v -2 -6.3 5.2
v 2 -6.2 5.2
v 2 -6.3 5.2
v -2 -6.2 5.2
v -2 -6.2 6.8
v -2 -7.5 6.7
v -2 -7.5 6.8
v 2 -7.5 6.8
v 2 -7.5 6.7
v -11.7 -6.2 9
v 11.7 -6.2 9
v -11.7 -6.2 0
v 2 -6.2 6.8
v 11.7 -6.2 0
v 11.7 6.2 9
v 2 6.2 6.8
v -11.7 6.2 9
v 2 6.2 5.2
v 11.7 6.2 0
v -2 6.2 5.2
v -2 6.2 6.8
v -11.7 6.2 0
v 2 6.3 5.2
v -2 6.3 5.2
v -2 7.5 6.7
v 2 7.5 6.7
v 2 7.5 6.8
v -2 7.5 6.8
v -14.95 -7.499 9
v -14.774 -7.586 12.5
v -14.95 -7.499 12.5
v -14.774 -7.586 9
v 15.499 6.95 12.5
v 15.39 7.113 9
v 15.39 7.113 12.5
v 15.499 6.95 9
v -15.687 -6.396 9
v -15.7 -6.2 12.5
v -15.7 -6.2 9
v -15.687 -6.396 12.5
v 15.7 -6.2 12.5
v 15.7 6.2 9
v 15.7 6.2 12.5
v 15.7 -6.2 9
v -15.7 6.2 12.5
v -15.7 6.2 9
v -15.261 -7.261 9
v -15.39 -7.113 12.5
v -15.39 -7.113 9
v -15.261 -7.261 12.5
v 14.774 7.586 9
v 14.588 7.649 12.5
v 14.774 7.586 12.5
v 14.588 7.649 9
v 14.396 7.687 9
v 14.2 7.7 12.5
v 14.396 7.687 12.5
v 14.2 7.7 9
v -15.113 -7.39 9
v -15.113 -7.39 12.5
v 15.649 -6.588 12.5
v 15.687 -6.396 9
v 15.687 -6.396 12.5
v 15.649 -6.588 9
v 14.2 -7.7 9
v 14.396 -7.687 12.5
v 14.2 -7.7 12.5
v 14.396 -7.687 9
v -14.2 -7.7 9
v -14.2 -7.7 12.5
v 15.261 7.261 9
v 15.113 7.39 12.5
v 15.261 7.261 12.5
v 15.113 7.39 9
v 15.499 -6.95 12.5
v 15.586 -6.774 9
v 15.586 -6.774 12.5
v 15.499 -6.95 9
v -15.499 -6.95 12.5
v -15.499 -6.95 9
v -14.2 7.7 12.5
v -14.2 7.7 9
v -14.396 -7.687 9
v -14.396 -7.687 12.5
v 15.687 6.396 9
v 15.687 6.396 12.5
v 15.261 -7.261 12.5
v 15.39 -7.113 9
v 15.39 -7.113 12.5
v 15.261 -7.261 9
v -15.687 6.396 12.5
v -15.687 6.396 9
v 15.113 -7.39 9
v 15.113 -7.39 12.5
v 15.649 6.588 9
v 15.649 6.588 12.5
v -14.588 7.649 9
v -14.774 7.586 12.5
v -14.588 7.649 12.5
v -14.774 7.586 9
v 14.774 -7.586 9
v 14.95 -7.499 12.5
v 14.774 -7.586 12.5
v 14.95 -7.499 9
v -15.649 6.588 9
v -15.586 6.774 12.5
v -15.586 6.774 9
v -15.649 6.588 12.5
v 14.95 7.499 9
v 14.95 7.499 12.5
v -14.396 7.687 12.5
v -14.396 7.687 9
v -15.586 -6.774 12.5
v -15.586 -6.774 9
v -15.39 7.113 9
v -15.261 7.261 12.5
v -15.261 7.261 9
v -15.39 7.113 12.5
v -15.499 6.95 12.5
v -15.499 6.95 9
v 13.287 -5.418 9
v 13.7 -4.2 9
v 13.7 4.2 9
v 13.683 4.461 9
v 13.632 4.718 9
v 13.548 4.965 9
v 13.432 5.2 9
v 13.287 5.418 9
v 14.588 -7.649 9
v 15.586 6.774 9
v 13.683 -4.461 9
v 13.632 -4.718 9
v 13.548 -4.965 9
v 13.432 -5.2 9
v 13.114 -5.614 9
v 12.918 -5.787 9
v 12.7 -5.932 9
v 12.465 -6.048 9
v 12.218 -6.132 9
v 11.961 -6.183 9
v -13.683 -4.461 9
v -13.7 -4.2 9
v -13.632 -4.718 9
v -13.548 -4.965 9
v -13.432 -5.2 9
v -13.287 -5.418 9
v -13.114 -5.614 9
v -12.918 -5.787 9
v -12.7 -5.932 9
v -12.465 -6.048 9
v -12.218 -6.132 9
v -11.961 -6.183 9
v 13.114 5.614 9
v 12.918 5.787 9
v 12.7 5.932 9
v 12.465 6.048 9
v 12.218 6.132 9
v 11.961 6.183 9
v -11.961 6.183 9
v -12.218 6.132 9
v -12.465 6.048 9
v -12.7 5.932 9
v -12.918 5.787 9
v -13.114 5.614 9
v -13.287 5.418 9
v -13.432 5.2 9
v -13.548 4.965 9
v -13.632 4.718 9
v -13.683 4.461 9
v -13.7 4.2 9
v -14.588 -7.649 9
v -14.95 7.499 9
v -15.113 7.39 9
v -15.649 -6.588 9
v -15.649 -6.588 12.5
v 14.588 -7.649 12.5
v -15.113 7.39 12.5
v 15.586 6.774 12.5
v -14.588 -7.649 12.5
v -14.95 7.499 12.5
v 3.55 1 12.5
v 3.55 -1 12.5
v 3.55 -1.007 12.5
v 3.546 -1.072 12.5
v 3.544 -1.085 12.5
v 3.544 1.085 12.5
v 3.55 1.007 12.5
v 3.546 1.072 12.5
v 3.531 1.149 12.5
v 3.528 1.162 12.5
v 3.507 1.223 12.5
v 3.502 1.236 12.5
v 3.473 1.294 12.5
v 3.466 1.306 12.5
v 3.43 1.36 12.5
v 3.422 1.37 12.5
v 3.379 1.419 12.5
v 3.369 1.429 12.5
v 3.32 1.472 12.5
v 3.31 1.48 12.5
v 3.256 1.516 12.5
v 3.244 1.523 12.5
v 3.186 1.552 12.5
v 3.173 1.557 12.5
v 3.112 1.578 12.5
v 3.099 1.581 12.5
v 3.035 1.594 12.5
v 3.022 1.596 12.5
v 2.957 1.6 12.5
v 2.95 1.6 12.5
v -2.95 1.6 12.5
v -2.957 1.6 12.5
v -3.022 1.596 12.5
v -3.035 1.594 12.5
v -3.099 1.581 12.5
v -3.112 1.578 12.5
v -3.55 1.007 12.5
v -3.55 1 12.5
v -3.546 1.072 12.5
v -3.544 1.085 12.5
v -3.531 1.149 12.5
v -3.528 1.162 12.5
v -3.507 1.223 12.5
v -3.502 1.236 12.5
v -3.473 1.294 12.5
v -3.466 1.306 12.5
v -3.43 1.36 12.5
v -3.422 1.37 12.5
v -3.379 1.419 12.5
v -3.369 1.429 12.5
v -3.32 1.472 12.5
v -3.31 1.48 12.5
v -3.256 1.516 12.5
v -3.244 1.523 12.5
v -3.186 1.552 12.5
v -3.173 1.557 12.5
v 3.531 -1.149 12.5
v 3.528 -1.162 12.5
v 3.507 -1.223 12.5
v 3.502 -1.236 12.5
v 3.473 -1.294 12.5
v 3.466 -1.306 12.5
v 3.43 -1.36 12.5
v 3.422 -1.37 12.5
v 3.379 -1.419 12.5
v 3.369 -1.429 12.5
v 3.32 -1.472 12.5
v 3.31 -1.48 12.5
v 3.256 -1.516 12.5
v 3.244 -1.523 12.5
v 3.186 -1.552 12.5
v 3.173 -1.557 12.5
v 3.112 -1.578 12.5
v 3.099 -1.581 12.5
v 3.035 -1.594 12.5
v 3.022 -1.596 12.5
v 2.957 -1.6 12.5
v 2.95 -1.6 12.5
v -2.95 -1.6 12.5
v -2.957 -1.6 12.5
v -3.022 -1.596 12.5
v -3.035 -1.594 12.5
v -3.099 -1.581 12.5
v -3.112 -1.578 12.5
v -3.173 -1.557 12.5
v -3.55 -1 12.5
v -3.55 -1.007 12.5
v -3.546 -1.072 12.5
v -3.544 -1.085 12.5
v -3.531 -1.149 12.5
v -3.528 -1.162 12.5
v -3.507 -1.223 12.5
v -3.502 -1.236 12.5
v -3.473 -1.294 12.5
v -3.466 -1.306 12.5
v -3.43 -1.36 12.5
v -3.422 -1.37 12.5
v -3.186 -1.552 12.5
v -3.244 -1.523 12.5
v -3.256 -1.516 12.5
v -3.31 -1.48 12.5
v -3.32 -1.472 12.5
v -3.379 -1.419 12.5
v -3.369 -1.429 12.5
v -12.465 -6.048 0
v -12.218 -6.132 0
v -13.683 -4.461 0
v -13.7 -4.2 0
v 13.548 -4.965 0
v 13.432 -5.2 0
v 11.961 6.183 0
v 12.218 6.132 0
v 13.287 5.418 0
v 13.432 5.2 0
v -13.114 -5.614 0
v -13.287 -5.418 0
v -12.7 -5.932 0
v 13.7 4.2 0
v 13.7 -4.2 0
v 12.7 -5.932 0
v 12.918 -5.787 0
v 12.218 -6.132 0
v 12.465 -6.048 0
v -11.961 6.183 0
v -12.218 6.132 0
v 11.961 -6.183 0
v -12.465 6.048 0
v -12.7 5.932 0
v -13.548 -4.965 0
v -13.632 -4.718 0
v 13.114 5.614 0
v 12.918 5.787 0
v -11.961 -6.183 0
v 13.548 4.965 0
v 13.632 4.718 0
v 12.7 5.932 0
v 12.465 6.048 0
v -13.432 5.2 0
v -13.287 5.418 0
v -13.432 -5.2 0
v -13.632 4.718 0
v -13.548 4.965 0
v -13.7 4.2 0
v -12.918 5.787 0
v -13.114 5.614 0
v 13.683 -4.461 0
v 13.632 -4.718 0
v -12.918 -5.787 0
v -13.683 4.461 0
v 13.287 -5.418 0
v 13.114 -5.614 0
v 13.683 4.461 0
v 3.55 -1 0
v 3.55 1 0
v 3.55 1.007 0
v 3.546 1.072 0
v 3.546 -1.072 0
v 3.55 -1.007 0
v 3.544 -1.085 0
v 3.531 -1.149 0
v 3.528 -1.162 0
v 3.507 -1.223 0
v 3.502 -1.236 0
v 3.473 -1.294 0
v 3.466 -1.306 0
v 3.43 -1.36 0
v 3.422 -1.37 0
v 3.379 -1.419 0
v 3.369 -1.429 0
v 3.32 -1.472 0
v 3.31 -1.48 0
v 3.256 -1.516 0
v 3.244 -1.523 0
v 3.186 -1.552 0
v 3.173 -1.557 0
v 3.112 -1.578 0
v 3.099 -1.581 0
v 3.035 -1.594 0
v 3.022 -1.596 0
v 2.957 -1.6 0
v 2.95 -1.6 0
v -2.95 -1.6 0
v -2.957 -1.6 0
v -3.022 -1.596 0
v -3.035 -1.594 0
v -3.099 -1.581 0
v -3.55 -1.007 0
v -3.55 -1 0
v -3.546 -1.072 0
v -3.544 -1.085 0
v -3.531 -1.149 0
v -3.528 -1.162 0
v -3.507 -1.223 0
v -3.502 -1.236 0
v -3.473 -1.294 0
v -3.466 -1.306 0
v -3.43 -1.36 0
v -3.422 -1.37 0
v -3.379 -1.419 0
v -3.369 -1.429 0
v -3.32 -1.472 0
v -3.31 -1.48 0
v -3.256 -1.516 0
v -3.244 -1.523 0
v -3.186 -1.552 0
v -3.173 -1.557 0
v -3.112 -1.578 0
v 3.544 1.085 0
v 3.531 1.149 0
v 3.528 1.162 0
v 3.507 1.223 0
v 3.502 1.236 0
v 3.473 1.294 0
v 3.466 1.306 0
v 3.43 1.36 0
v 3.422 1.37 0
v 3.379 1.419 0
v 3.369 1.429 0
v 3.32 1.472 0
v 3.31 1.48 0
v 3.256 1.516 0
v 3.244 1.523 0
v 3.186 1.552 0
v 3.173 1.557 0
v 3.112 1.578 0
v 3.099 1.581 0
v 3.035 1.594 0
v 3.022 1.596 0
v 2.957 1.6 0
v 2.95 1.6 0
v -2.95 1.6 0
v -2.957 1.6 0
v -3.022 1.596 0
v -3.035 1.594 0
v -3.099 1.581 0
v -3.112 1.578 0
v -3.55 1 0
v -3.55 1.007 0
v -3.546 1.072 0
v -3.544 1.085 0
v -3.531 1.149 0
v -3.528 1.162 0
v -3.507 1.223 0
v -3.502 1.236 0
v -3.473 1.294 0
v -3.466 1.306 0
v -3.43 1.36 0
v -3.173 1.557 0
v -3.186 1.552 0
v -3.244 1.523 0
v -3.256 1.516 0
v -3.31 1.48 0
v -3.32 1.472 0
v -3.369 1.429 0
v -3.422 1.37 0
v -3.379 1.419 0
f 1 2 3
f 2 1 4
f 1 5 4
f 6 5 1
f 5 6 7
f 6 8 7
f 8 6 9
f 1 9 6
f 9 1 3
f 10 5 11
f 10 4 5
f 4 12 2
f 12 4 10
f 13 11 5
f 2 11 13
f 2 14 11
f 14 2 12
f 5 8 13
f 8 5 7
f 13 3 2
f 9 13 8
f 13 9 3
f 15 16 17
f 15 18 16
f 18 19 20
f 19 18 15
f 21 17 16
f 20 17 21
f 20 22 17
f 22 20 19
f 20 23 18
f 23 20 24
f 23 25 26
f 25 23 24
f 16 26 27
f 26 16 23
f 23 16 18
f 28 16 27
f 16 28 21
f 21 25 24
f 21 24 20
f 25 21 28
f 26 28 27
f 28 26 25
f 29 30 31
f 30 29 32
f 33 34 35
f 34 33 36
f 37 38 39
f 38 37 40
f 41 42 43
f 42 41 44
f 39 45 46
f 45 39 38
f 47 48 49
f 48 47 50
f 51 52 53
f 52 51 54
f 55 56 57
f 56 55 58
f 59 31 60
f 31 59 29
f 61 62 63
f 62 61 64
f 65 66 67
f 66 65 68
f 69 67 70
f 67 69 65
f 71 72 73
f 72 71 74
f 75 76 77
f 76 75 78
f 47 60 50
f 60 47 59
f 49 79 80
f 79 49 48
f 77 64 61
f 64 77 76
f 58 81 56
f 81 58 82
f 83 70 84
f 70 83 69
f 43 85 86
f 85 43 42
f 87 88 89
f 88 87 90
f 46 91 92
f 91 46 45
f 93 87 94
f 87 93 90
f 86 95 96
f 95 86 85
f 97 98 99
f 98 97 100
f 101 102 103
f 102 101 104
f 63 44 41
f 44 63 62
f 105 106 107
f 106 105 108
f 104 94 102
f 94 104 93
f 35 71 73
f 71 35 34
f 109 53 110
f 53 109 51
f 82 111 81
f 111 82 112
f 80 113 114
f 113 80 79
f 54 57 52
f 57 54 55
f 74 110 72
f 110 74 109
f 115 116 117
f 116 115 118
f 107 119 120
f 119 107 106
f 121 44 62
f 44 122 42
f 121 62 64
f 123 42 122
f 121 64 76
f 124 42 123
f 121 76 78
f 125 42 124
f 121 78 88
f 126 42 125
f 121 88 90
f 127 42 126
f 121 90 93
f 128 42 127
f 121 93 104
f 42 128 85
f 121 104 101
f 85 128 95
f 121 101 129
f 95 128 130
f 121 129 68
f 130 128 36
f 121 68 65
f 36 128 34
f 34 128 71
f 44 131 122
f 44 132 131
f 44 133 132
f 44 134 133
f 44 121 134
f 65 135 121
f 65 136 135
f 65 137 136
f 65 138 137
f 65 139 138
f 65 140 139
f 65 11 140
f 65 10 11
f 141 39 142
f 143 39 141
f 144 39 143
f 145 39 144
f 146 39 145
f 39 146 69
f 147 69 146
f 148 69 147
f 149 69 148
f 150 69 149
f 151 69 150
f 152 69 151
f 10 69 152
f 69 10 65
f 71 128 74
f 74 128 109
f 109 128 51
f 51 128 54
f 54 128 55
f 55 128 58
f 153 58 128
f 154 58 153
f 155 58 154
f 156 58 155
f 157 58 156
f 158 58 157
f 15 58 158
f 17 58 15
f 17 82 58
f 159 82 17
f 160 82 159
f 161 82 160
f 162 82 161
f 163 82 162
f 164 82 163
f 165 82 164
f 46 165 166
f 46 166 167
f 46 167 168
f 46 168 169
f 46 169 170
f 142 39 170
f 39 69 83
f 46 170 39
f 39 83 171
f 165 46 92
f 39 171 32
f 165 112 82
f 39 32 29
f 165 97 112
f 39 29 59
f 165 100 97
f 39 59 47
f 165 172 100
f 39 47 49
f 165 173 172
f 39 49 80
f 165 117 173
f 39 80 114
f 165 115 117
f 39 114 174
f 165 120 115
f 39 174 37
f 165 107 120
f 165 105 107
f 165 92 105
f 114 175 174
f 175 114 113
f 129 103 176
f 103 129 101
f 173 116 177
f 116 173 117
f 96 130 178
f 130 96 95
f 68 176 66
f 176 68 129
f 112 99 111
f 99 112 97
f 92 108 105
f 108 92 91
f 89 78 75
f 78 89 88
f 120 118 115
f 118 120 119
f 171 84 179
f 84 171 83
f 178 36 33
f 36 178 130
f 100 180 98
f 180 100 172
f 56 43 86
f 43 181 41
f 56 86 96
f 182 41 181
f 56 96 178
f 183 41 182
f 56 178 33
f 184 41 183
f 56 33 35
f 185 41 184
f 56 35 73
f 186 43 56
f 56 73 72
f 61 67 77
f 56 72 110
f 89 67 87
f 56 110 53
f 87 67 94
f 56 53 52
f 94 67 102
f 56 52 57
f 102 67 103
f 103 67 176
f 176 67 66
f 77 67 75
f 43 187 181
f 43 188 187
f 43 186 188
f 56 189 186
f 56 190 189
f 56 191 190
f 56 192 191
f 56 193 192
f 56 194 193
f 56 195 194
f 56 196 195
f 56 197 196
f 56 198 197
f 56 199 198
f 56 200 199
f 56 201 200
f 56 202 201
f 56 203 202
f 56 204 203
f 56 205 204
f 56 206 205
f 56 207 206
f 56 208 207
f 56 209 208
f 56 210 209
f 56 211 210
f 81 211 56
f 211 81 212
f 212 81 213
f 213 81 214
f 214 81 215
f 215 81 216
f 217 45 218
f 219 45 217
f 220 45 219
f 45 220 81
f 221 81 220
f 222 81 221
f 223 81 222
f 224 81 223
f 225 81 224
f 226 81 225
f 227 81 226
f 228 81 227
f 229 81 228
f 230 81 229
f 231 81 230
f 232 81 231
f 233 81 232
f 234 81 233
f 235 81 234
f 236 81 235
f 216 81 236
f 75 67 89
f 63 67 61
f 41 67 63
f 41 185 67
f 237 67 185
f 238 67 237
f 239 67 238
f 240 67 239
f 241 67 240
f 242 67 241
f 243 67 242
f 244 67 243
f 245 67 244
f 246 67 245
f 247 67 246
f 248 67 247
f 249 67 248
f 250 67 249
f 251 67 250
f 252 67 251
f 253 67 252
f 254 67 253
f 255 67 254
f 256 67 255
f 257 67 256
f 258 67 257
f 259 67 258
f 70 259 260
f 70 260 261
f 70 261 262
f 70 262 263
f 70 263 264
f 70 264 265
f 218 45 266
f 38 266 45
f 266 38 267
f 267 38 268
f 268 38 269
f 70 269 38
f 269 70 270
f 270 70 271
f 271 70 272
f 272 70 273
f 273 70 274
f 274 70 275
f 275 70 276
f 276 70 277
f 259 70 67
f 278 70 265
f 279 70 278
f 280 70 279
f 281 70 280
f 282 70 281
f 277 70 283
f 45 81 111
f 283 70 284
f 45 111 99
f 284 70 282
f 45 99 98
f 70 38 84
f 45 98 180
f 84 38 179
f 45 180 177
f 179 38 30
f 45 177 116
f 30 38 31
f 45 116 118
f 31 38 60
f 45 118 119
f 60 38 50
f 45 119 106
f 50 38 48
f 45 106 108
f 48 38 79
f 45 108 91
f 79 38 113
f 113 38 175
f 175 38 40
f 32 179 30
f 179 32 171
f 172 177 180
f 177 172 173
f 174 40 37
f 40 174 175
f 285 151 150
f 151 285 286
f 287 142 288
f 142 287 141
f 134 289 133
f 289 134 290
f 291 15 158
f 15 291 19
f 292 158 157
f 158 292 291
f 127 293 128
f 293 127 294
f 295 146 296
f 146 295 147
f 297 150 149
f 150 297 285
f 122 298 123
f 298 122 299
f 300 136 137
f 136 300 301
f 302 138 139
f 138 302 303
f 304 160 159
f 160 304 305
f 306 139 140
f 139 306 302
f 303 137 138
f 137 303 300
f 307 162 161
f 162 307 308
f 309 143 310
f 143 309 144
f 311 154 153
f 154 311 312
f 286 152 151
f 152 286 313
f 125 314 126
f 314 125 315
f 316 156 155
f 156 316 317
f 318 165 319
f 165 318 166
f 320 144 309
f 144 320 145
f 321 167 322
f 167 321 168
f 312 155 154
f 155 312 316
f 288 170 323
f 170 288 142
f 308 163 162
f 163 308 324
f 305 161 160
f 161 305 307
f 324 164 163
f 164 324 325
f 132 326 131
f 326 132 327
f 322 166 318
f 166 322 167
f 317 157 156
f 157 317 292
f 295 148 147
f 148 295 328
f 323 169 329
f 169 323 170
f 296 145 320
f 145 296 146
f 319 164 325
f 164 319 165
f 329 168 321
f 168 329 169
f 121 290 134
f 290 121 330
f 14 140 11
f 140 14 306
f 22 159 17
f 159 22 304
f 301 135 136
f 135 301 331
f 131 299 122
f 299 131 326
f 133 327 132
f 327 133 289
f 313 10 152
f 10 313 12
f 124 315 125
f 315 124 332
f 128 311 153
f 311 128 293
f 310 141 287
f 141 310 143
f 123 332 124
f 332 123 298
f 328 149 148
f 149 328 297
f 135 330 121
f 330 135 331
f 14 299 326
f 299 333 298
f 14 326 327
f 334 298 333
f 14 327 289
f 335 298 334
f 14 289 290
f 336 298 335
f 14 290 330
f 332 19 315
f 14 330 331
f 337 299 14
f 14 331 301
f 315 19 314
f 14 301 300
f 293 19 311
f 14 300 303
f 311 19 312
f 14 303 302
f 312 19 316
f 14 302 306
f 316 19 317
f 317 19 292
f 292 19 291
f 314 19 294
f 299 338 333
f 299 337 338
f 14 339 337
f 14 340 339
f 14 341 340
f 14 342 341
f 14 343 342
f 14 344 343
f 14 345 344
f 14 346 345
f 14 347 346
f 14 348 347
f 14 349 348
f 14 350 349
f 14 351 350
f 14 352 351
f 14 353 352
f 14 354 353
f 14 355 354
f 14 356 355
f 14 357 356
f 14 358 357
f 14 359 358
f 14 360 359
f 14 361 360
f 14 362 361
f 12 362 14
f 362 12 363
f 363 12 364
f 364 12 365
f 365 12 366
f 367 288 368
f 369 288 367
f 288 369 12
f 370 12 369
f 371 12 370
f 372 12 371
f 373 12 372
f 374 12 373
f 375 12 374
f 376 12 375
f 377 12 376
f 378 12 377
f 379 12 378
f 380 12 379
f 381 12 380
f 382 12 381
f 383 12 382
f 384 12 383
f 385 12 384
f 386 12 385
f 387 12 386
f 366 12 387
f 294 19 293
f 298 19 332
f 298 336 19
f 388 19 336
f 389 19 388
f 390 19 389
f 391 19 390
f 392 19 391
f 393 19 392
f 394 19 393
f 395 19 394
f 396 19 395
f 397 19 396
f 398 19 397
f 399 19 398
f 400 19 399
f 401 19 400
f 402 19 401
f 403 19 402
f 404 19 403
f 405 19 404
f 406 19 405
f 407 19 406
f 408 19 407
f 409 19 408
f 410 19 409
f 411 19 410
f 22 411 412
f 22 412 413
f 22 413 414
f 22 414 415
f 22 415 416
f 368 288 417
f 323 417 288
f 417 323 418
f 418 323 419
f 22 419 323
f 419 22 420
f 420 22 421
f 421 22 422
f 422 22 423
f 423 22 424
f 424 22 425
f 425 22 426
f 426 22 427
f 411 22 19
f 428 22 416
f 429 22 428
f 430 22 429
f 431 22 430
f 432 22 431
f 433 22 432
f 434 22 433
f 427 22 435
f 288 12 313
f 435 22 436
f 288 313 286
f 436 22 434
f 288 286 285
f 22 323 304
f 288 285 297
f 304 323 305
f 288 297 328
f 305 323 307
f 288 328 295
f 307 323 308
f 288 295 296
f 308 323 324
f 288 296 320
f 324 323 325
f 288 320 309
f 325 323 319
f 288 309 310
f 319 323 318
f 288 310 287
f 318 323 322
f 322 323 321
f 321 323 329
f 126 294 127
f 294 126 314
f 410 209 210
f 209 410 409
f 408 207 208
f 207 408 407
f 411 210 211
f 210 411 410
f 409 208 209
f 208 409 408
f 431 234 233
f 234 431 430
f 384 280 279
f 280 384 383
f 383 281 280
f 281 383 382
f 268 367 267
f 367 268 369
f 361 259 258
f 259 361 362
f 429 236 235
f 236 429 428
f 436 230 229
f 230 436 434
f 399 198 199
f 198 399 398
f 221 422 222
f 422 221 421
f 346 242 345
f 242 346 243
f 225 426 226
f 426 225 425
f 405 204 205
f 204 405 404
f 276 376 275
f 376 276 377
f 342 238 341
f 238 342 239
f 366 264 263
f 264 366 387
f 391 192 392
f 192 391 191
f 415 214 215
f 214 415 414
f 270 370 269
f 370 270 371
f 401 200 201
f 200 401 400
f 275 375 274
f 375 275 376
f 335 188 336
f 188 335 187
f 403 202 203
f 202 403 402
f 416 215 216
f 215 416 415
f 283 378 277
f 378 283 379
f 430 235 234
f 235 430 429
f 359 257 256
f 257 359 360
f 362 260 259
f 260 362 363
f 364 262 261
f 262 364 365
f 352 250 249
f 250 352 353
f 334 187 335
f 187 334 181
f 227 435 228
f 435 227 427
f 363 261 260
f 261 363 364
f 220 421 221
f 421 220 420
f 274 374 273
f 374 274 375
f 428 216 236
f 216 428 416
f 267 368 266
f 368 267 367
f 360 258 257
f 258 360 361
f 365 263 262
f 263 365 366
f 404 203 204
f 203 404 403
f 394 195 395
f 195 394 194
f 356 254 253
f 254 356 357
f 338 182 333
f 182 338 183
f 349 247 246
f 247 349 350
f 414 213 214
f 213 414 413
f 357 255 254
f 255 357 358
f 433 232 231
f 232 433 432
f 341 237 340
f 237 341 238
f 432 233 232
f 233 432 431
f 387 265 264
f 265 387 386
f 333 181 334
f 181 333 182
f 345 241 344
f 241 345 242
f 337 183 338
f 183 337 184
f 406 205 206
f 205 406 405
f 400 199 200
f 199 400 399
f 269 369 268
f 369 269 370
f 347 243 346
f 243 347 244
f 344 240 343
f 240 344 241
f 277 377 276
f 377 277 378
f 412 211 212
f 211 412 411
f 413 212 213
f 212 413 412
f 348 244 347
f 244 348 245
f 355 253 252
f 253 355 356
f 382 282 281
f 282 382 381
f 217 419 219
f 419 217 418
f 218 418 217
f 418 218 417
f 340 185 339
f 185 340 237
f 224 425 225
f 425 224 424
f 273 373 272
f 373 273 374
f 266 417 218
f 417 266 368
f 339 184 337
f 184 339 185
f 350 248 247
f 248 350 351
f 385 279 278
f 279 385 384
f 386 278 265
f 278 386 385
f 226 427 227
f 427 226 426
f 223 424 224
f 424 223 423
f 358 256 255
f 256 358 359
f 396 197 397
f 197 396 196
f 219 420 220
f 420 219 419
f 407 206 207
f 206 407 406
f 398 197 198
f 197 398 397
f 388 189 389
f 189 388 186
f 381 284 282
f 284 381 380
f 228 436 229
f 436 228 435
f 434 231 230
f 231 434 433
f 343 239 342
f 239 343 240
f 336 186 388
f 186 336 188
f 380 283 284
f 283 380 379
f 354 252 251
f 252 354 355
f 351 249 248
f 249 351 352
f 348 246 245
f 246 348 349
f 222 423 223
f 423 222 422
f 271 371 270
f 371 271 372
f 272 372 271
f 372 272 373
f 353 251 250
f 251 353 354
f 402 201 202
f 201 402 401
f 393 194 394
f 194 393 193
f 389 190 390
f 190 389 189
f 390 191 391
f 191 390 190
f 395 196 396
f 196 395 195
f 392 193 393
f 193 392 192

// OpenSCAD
// file: insert_base.scad
// ============================================
// MODULAR CABLE ORGANIZER - BASE INSERT MODULE
// ============================================
// This is the parent module for all insert types
// Include this file and call insert_with_port() with a port shape
// ============================================

include <parameters.scad>

// === BASE INSERT WITH CUSTOM BODY DEPTH ===
module insert_blank_custom(body_depth) {
    union() {
        // Base plate (sits in frame slot)
        rounded_box_rect(insert_width, insert_height, insert_base_depth, 1.5);
        
        // Body (protrudes out front) - custom depth
        translate([0, 0, insert_base_depth])
            rounded_box_rect(insert_body_width, insert_body_height, body_depth, 2);
        
        // Snap tabs on all 4 sides
        snap_tabs_all();
    }
}

// === BASE INSERT (default depth - for backwards compatibility) ===
module insert_blank() {
    insert_blank_custom(insert_body_depth);
}

// === INSERT WITH THROUGH-HOLE PORT (custom depth) ===
// Pass body_depth and a 2D shape as children
module insert_with_port_custom(body_depth) {
    total_depth = insert_base_depth + body_depth;
    difference() {
        insert_blank_custom(body_depth);
        
        // Cut port hole ALL THE WAY through (tube shape)
        translate([0, 0, -0.1])
            linear_extrude(total_depth + 0.2)
            offset(r=port_clearance)  // Add clearance to port opening
            children();
    }
}

// === INSERT WITH THROUGH-HOLE PORT (default depth) ===
module insert_with_port() {
    insert_with_port_custom(insert_body_depth) children();
}

// === PRE-MADE INSERT MODULES WITH CORRECT DEPTHS ===
module insert_usbc() {
    insert_with_port_custom(usbc_body_depth) port_usbc();
}

module insert_usba() {
    insert_with_port_custom(usba_body_depth) port_usba();
}

module insert_usb_mini() {
    insert_with_port_custom(usb_mini_body_depth) port_usb_mini();
}

module insert_usb_micro() {
    insert_with_port_custom(usb_micro_body_depth) port_usb_micro();
}

module insert_usb_b() {
    insert_with_port_custom(usb_b_body_depth) port_usb_b();
}

module insert_lightning() {
    insert_with_port_custom(lightning_body_depth) port_lightning();
}

module insert_hdmi() {
    insert_with_port_custom(hdmi_body_depth) port_hdmi();
}

module insert_audio_jack() {
    insert_with_port_custom(audio_jack_body_depth) port_audio_jack();
}

// === SNAP TABS (on neck/body - catch on frame cutouts) ===
// Tabs are on the body, positioned to engage with frame wall cutouts
module snap_tabs_all() {
    // Position tabs up on body (clear of base/frame)
    tab_z = insert_base_depth + snap_tab_offset;
    
    // Tabs on all 4 sides of the body
    for (angle = [0, 90, 180, 270]) {
        rotate([0, 0, angle])
            translate([0, insert_body_height/2, tab_z])
            neck_snap_tab();
    }
}

module neck_snap_tab() {
    // Wedge shape (FLIPPED): 
    // - Peak/taper on BOTTOM - slides past back plate when inserting
    // - Flat on TOP - catches and holds
    hull() {
        // Peak of wedge (protruding, at BOTTOM of tab)
        translate([-snap_tab_width/2, snap_tab_protrude, 0])
            cube([snap_tab_width, 0.1, 0.1]);
        // Flat top (at body surface, TOP of tab)
        translate([-snap_tab_width/2, 0, snap_tab_thick])
            cube([snap_tab_width, 0.1, 0.1]);
        // Base of wedge (at body surface, bottom)
        translate([-snap_tab_width/2, 0, 0])
            cube([snap_tab_width, 0.1, 0.1]);
    }
}

module snap_tab_horizontal() {
    hull() {
        translate([0, -snap_tab_protrude/2, 0])
            cube([snap_tab_width, 0.1, snap_tab_thick], center=true);
        translate([0, snap_tab_protrude/2, snap_tab_thick * 0.2])
            cube([snap_tab_width, 0.1, snap_tab_thick * 0.6], center=true);
    }
}

module snap_tab_vertical() {
    hull() {
        translate([-snap_tab_protrude/2, 0, 0])
            cube([0.1, snap_tab_width, snap_tab_thick], center=true);
        translate([snap_tab_protrude/2, 0, snap_tab_thick * 0.2])
            cube([0.1, snap_tab_width, snap_tab_thick * 0.6], center=true);
    }
}

// === UTILITY MODULES ===
module rounded_box_rect(w, d, h, r) {
    translate([0, 0, h/2])
        hull() {
            for (x = [-1, 1], y = [-1, 1])
                translate([x * (w/2 - r), y * (d/2 - r), 0])
                    cylinder(h=h, r=r, center=true);
        }
}

// === PORT SHAPE MODULES (2D) ===
// These define the cutout shapes for each connector type

module port_rounded_rect(w, h, r) {
    // Standard rounded rectangle
    hull() {
        for (x = [-1, 1], y = [-1, 1])
            translate([x * (w/2 - r), y * (h/2 - r)])
                circle(r=r);
    }
}

module port_usbc() {
    port_rounded_rect(usbc_w, usbc_h, usbc_r);
}

module port_usba() {
    port_rounded_rect(usba_w, usba_h, usba_r);
}

module port_usb_mini() {
    port_rounded_rect(usb_mini_w, usb_mini_h, usb_mini_r);
}

module port_usb_micro() {
    port_rounded_rect(usb_micro_w, usb_micro_h, usb_micro_r);
}

module port_usb_b() {
    // USB-B has beveled top corners
    hull() {
        // Bottom corners (full radius)
        for (x = [-1, 1])
            translate([x * (usb_b_w/2 - usb_b_r), -(usb_b_h/2 - usb_b_r)])
                circle(r=usb_b_r);
        // Top corners (chamfered - moved inward)
        for (x = [-1, 1])
            translate([x * (usb_b_w/2 - usb_b_r - 1), (usb_b_h/2 - usb_b_r)])
                circle(r=usb_b_r);
    }
}

module port_lightning() {
    port_rounded_rect(lightning_w, lightning_h, lightning_r);
}

module port_hdmi() {
    // HDMI is tapered (wider at top)
    hull() {
        // Top (wider)
        for (x = [-1, 1])
            translate([x * (hdmi_w/2 - hdmi_r), (hdmi_h/2 - hdmi_r)])
                circle(r=hdmi_r);
        // Bottom (narrower)
        for (x = [-1, 1])
            translate([x * (hdmi_w/2 - hdmi_r - 1), -(hdmi_h/2 - hdmi_r)])
                circle(r=hdmi_r);
    }
}

module port_audio_jack() {
    circle(d=audio_jack_dia);
}

module port_label_recess() {
    // Shallow rectangular recess for labels
    square([label_w, label_h], center=true);
}

// === RENDER (for testing this file directly) ===
// insert_blank();
// file: parameters.scad
// ============================================
// MODULAR CABLE ORGANIZER - SHARED PARAMETERS
// ============================================
// All dimensions in mm - include this in all files
// ============================================

$fn = 48;

// === TOLERANCES ===
clearance = 0.3;
port_clearance = 0.1;  // Extra clearance for port openings (reduced - 0.2 was too loose for USB-C)
wall = 1.6;

// === SLOT DIMENSIONS (2:1 aspect ratio) - scaled to 2/3 ===
slot_width = 32;  // Reduced by 1mm for more compact insert
slot_height = 16;  // Reduced by 1mm for more compact insert
slot_depth = 4;  // Reduced from 6mm - less frame depth needed

// === FRAME STRUCTURE ===
frame_wall = 0.5;   // Reduced for more compact frame
frame_border = 8;  // Increased by 10mm for mounting holes with countersink
frame_back = 2;     // Slightly thicker for snap catch strength
mount_hole_dia = 3;
countersink_dia = 6;  // Diameter of countersink for screw heads
countersink_depth = 2;  // Depth of countersink

// === GRID ===
grid_cols = 2;
grid_rows = 2;

// === INSERT BASE DIMENSIONS ===
insert_width = slot_width - (2 * clearance);
insert_height = slot_height - (2 * clearance);
insert_base_depth = slot_depth - 0.5;

// === INSERT BODY (protrudes from frame) ===
insert_body_width = insert_width - 4;
insert_body_height = insert_height - 3;
insert_body_depth = 12;  // Deep enough to accommodate male cable connectors
insert_top_thick = 1.5;  // Top platform thickness

// === SNAP TABS (on neck/body - catch on back plate) ===
snap_tab_width = 4;
snap_tab_protrude = 1.2;  // How far tab sticks out from body
snap_tab_thick = 1.5;     // Z thickness of tab
snap_tab_offset = 2.2;      // Distance from base to tab bottom on insert (increased to clear frame)

// === CONNECTOR PORT DIMENSIONS & BODY DEPTHS ===
// Port dimensions from reference blueprints
// Body depths sized to match typical male connector lengths

// USB-C: 8.4 x 2.6mm, male connector ~9mm
usbc_w = 8.4;
usbc_h = 2.6;
usbc_r = 1.0;
usbc_body_depth = 9;

// USB-A: 14.0 x 6.5mm, male connector ~13mm
usba_w = 14.0;
usba_h = 6.5;
usba_r = 0.5;
usba_body_depth = 13;

// USB Mini: 6.9 x 3.0mm, male connector ~9mm
usb_mini_w = 6.9;
usb_mini_h = 3.0;
usb_mini_r = 0.5;
usb_mini_body_depth = 9;

// USB Micro: 6.9 x 1.8mm, male connector ~7mm
usb_micro_w = 6.9;
usb_micro_h = 1.8;
usb_micro_r = 0.3;
usb_micro_body_depth = 7;

// USB-B: 8.0 x 7.5mm, male connector ~14mm
usb_b_w = 8.0;
usb_b_h = 7.5;
usb_b_r = 1.0;
usb_b_body_depth = 14;

// Lightning: 6.7 x 1.5mm, male connector ~8mm
lightning_w = 6.7;
lightning_h = 1.5;
lightning_r = 0.5;
lightning_body_depth = 8;

// HDMI: 14.0 x 4.5mm, male connector ~16mm
hdmi_w = 14.0;
hdmi_h = 4.5;
hdmi_r = 0.5;
hdmi_body_depth = 16;

// 3.5mm Audio Jack: male plug ~14mm
audio_jack_dia = 6.0;
audio_jack_body_depth = 14;

// Blank/Label: recessed area for label
label_w = 30;
label_h = 12;
label_depth = 0.8;

// === CALCULATED VALUES ===
frame_total_depth = frame_back + slot_depth;
grid_width = (grid_cols * slot_width) + ((grid_cols - 1) * frame_wall);
grid_height = (grid_rows * slot_height) + ((grid_rows - 1) * frame_wall);
frame_width = grid_width + (2 * frame_border);
frame_height_total = grid_height + (2 * frame_border);
insert_total_depth = insert_base_depth + insert_body_depth;
// main file
// ============================================
// PRINT FILE: USB Mini Insert
// ============================================
// Body depth: 9mm (matches USB Mini male connector)
// Print with port side DOWN (flat on bed)
// No supports needed - through-hole design
// ============================================

include <parameters.scad>
include <insert_base.scad>

// USB Mini insert - oriented for printing (port side down)
total_depth = insert_base_depth + usb_mini_body_depth;

rotate([180, 0, 0])
translate([0, 0, -total_depth])
    insert_usb_mini();
